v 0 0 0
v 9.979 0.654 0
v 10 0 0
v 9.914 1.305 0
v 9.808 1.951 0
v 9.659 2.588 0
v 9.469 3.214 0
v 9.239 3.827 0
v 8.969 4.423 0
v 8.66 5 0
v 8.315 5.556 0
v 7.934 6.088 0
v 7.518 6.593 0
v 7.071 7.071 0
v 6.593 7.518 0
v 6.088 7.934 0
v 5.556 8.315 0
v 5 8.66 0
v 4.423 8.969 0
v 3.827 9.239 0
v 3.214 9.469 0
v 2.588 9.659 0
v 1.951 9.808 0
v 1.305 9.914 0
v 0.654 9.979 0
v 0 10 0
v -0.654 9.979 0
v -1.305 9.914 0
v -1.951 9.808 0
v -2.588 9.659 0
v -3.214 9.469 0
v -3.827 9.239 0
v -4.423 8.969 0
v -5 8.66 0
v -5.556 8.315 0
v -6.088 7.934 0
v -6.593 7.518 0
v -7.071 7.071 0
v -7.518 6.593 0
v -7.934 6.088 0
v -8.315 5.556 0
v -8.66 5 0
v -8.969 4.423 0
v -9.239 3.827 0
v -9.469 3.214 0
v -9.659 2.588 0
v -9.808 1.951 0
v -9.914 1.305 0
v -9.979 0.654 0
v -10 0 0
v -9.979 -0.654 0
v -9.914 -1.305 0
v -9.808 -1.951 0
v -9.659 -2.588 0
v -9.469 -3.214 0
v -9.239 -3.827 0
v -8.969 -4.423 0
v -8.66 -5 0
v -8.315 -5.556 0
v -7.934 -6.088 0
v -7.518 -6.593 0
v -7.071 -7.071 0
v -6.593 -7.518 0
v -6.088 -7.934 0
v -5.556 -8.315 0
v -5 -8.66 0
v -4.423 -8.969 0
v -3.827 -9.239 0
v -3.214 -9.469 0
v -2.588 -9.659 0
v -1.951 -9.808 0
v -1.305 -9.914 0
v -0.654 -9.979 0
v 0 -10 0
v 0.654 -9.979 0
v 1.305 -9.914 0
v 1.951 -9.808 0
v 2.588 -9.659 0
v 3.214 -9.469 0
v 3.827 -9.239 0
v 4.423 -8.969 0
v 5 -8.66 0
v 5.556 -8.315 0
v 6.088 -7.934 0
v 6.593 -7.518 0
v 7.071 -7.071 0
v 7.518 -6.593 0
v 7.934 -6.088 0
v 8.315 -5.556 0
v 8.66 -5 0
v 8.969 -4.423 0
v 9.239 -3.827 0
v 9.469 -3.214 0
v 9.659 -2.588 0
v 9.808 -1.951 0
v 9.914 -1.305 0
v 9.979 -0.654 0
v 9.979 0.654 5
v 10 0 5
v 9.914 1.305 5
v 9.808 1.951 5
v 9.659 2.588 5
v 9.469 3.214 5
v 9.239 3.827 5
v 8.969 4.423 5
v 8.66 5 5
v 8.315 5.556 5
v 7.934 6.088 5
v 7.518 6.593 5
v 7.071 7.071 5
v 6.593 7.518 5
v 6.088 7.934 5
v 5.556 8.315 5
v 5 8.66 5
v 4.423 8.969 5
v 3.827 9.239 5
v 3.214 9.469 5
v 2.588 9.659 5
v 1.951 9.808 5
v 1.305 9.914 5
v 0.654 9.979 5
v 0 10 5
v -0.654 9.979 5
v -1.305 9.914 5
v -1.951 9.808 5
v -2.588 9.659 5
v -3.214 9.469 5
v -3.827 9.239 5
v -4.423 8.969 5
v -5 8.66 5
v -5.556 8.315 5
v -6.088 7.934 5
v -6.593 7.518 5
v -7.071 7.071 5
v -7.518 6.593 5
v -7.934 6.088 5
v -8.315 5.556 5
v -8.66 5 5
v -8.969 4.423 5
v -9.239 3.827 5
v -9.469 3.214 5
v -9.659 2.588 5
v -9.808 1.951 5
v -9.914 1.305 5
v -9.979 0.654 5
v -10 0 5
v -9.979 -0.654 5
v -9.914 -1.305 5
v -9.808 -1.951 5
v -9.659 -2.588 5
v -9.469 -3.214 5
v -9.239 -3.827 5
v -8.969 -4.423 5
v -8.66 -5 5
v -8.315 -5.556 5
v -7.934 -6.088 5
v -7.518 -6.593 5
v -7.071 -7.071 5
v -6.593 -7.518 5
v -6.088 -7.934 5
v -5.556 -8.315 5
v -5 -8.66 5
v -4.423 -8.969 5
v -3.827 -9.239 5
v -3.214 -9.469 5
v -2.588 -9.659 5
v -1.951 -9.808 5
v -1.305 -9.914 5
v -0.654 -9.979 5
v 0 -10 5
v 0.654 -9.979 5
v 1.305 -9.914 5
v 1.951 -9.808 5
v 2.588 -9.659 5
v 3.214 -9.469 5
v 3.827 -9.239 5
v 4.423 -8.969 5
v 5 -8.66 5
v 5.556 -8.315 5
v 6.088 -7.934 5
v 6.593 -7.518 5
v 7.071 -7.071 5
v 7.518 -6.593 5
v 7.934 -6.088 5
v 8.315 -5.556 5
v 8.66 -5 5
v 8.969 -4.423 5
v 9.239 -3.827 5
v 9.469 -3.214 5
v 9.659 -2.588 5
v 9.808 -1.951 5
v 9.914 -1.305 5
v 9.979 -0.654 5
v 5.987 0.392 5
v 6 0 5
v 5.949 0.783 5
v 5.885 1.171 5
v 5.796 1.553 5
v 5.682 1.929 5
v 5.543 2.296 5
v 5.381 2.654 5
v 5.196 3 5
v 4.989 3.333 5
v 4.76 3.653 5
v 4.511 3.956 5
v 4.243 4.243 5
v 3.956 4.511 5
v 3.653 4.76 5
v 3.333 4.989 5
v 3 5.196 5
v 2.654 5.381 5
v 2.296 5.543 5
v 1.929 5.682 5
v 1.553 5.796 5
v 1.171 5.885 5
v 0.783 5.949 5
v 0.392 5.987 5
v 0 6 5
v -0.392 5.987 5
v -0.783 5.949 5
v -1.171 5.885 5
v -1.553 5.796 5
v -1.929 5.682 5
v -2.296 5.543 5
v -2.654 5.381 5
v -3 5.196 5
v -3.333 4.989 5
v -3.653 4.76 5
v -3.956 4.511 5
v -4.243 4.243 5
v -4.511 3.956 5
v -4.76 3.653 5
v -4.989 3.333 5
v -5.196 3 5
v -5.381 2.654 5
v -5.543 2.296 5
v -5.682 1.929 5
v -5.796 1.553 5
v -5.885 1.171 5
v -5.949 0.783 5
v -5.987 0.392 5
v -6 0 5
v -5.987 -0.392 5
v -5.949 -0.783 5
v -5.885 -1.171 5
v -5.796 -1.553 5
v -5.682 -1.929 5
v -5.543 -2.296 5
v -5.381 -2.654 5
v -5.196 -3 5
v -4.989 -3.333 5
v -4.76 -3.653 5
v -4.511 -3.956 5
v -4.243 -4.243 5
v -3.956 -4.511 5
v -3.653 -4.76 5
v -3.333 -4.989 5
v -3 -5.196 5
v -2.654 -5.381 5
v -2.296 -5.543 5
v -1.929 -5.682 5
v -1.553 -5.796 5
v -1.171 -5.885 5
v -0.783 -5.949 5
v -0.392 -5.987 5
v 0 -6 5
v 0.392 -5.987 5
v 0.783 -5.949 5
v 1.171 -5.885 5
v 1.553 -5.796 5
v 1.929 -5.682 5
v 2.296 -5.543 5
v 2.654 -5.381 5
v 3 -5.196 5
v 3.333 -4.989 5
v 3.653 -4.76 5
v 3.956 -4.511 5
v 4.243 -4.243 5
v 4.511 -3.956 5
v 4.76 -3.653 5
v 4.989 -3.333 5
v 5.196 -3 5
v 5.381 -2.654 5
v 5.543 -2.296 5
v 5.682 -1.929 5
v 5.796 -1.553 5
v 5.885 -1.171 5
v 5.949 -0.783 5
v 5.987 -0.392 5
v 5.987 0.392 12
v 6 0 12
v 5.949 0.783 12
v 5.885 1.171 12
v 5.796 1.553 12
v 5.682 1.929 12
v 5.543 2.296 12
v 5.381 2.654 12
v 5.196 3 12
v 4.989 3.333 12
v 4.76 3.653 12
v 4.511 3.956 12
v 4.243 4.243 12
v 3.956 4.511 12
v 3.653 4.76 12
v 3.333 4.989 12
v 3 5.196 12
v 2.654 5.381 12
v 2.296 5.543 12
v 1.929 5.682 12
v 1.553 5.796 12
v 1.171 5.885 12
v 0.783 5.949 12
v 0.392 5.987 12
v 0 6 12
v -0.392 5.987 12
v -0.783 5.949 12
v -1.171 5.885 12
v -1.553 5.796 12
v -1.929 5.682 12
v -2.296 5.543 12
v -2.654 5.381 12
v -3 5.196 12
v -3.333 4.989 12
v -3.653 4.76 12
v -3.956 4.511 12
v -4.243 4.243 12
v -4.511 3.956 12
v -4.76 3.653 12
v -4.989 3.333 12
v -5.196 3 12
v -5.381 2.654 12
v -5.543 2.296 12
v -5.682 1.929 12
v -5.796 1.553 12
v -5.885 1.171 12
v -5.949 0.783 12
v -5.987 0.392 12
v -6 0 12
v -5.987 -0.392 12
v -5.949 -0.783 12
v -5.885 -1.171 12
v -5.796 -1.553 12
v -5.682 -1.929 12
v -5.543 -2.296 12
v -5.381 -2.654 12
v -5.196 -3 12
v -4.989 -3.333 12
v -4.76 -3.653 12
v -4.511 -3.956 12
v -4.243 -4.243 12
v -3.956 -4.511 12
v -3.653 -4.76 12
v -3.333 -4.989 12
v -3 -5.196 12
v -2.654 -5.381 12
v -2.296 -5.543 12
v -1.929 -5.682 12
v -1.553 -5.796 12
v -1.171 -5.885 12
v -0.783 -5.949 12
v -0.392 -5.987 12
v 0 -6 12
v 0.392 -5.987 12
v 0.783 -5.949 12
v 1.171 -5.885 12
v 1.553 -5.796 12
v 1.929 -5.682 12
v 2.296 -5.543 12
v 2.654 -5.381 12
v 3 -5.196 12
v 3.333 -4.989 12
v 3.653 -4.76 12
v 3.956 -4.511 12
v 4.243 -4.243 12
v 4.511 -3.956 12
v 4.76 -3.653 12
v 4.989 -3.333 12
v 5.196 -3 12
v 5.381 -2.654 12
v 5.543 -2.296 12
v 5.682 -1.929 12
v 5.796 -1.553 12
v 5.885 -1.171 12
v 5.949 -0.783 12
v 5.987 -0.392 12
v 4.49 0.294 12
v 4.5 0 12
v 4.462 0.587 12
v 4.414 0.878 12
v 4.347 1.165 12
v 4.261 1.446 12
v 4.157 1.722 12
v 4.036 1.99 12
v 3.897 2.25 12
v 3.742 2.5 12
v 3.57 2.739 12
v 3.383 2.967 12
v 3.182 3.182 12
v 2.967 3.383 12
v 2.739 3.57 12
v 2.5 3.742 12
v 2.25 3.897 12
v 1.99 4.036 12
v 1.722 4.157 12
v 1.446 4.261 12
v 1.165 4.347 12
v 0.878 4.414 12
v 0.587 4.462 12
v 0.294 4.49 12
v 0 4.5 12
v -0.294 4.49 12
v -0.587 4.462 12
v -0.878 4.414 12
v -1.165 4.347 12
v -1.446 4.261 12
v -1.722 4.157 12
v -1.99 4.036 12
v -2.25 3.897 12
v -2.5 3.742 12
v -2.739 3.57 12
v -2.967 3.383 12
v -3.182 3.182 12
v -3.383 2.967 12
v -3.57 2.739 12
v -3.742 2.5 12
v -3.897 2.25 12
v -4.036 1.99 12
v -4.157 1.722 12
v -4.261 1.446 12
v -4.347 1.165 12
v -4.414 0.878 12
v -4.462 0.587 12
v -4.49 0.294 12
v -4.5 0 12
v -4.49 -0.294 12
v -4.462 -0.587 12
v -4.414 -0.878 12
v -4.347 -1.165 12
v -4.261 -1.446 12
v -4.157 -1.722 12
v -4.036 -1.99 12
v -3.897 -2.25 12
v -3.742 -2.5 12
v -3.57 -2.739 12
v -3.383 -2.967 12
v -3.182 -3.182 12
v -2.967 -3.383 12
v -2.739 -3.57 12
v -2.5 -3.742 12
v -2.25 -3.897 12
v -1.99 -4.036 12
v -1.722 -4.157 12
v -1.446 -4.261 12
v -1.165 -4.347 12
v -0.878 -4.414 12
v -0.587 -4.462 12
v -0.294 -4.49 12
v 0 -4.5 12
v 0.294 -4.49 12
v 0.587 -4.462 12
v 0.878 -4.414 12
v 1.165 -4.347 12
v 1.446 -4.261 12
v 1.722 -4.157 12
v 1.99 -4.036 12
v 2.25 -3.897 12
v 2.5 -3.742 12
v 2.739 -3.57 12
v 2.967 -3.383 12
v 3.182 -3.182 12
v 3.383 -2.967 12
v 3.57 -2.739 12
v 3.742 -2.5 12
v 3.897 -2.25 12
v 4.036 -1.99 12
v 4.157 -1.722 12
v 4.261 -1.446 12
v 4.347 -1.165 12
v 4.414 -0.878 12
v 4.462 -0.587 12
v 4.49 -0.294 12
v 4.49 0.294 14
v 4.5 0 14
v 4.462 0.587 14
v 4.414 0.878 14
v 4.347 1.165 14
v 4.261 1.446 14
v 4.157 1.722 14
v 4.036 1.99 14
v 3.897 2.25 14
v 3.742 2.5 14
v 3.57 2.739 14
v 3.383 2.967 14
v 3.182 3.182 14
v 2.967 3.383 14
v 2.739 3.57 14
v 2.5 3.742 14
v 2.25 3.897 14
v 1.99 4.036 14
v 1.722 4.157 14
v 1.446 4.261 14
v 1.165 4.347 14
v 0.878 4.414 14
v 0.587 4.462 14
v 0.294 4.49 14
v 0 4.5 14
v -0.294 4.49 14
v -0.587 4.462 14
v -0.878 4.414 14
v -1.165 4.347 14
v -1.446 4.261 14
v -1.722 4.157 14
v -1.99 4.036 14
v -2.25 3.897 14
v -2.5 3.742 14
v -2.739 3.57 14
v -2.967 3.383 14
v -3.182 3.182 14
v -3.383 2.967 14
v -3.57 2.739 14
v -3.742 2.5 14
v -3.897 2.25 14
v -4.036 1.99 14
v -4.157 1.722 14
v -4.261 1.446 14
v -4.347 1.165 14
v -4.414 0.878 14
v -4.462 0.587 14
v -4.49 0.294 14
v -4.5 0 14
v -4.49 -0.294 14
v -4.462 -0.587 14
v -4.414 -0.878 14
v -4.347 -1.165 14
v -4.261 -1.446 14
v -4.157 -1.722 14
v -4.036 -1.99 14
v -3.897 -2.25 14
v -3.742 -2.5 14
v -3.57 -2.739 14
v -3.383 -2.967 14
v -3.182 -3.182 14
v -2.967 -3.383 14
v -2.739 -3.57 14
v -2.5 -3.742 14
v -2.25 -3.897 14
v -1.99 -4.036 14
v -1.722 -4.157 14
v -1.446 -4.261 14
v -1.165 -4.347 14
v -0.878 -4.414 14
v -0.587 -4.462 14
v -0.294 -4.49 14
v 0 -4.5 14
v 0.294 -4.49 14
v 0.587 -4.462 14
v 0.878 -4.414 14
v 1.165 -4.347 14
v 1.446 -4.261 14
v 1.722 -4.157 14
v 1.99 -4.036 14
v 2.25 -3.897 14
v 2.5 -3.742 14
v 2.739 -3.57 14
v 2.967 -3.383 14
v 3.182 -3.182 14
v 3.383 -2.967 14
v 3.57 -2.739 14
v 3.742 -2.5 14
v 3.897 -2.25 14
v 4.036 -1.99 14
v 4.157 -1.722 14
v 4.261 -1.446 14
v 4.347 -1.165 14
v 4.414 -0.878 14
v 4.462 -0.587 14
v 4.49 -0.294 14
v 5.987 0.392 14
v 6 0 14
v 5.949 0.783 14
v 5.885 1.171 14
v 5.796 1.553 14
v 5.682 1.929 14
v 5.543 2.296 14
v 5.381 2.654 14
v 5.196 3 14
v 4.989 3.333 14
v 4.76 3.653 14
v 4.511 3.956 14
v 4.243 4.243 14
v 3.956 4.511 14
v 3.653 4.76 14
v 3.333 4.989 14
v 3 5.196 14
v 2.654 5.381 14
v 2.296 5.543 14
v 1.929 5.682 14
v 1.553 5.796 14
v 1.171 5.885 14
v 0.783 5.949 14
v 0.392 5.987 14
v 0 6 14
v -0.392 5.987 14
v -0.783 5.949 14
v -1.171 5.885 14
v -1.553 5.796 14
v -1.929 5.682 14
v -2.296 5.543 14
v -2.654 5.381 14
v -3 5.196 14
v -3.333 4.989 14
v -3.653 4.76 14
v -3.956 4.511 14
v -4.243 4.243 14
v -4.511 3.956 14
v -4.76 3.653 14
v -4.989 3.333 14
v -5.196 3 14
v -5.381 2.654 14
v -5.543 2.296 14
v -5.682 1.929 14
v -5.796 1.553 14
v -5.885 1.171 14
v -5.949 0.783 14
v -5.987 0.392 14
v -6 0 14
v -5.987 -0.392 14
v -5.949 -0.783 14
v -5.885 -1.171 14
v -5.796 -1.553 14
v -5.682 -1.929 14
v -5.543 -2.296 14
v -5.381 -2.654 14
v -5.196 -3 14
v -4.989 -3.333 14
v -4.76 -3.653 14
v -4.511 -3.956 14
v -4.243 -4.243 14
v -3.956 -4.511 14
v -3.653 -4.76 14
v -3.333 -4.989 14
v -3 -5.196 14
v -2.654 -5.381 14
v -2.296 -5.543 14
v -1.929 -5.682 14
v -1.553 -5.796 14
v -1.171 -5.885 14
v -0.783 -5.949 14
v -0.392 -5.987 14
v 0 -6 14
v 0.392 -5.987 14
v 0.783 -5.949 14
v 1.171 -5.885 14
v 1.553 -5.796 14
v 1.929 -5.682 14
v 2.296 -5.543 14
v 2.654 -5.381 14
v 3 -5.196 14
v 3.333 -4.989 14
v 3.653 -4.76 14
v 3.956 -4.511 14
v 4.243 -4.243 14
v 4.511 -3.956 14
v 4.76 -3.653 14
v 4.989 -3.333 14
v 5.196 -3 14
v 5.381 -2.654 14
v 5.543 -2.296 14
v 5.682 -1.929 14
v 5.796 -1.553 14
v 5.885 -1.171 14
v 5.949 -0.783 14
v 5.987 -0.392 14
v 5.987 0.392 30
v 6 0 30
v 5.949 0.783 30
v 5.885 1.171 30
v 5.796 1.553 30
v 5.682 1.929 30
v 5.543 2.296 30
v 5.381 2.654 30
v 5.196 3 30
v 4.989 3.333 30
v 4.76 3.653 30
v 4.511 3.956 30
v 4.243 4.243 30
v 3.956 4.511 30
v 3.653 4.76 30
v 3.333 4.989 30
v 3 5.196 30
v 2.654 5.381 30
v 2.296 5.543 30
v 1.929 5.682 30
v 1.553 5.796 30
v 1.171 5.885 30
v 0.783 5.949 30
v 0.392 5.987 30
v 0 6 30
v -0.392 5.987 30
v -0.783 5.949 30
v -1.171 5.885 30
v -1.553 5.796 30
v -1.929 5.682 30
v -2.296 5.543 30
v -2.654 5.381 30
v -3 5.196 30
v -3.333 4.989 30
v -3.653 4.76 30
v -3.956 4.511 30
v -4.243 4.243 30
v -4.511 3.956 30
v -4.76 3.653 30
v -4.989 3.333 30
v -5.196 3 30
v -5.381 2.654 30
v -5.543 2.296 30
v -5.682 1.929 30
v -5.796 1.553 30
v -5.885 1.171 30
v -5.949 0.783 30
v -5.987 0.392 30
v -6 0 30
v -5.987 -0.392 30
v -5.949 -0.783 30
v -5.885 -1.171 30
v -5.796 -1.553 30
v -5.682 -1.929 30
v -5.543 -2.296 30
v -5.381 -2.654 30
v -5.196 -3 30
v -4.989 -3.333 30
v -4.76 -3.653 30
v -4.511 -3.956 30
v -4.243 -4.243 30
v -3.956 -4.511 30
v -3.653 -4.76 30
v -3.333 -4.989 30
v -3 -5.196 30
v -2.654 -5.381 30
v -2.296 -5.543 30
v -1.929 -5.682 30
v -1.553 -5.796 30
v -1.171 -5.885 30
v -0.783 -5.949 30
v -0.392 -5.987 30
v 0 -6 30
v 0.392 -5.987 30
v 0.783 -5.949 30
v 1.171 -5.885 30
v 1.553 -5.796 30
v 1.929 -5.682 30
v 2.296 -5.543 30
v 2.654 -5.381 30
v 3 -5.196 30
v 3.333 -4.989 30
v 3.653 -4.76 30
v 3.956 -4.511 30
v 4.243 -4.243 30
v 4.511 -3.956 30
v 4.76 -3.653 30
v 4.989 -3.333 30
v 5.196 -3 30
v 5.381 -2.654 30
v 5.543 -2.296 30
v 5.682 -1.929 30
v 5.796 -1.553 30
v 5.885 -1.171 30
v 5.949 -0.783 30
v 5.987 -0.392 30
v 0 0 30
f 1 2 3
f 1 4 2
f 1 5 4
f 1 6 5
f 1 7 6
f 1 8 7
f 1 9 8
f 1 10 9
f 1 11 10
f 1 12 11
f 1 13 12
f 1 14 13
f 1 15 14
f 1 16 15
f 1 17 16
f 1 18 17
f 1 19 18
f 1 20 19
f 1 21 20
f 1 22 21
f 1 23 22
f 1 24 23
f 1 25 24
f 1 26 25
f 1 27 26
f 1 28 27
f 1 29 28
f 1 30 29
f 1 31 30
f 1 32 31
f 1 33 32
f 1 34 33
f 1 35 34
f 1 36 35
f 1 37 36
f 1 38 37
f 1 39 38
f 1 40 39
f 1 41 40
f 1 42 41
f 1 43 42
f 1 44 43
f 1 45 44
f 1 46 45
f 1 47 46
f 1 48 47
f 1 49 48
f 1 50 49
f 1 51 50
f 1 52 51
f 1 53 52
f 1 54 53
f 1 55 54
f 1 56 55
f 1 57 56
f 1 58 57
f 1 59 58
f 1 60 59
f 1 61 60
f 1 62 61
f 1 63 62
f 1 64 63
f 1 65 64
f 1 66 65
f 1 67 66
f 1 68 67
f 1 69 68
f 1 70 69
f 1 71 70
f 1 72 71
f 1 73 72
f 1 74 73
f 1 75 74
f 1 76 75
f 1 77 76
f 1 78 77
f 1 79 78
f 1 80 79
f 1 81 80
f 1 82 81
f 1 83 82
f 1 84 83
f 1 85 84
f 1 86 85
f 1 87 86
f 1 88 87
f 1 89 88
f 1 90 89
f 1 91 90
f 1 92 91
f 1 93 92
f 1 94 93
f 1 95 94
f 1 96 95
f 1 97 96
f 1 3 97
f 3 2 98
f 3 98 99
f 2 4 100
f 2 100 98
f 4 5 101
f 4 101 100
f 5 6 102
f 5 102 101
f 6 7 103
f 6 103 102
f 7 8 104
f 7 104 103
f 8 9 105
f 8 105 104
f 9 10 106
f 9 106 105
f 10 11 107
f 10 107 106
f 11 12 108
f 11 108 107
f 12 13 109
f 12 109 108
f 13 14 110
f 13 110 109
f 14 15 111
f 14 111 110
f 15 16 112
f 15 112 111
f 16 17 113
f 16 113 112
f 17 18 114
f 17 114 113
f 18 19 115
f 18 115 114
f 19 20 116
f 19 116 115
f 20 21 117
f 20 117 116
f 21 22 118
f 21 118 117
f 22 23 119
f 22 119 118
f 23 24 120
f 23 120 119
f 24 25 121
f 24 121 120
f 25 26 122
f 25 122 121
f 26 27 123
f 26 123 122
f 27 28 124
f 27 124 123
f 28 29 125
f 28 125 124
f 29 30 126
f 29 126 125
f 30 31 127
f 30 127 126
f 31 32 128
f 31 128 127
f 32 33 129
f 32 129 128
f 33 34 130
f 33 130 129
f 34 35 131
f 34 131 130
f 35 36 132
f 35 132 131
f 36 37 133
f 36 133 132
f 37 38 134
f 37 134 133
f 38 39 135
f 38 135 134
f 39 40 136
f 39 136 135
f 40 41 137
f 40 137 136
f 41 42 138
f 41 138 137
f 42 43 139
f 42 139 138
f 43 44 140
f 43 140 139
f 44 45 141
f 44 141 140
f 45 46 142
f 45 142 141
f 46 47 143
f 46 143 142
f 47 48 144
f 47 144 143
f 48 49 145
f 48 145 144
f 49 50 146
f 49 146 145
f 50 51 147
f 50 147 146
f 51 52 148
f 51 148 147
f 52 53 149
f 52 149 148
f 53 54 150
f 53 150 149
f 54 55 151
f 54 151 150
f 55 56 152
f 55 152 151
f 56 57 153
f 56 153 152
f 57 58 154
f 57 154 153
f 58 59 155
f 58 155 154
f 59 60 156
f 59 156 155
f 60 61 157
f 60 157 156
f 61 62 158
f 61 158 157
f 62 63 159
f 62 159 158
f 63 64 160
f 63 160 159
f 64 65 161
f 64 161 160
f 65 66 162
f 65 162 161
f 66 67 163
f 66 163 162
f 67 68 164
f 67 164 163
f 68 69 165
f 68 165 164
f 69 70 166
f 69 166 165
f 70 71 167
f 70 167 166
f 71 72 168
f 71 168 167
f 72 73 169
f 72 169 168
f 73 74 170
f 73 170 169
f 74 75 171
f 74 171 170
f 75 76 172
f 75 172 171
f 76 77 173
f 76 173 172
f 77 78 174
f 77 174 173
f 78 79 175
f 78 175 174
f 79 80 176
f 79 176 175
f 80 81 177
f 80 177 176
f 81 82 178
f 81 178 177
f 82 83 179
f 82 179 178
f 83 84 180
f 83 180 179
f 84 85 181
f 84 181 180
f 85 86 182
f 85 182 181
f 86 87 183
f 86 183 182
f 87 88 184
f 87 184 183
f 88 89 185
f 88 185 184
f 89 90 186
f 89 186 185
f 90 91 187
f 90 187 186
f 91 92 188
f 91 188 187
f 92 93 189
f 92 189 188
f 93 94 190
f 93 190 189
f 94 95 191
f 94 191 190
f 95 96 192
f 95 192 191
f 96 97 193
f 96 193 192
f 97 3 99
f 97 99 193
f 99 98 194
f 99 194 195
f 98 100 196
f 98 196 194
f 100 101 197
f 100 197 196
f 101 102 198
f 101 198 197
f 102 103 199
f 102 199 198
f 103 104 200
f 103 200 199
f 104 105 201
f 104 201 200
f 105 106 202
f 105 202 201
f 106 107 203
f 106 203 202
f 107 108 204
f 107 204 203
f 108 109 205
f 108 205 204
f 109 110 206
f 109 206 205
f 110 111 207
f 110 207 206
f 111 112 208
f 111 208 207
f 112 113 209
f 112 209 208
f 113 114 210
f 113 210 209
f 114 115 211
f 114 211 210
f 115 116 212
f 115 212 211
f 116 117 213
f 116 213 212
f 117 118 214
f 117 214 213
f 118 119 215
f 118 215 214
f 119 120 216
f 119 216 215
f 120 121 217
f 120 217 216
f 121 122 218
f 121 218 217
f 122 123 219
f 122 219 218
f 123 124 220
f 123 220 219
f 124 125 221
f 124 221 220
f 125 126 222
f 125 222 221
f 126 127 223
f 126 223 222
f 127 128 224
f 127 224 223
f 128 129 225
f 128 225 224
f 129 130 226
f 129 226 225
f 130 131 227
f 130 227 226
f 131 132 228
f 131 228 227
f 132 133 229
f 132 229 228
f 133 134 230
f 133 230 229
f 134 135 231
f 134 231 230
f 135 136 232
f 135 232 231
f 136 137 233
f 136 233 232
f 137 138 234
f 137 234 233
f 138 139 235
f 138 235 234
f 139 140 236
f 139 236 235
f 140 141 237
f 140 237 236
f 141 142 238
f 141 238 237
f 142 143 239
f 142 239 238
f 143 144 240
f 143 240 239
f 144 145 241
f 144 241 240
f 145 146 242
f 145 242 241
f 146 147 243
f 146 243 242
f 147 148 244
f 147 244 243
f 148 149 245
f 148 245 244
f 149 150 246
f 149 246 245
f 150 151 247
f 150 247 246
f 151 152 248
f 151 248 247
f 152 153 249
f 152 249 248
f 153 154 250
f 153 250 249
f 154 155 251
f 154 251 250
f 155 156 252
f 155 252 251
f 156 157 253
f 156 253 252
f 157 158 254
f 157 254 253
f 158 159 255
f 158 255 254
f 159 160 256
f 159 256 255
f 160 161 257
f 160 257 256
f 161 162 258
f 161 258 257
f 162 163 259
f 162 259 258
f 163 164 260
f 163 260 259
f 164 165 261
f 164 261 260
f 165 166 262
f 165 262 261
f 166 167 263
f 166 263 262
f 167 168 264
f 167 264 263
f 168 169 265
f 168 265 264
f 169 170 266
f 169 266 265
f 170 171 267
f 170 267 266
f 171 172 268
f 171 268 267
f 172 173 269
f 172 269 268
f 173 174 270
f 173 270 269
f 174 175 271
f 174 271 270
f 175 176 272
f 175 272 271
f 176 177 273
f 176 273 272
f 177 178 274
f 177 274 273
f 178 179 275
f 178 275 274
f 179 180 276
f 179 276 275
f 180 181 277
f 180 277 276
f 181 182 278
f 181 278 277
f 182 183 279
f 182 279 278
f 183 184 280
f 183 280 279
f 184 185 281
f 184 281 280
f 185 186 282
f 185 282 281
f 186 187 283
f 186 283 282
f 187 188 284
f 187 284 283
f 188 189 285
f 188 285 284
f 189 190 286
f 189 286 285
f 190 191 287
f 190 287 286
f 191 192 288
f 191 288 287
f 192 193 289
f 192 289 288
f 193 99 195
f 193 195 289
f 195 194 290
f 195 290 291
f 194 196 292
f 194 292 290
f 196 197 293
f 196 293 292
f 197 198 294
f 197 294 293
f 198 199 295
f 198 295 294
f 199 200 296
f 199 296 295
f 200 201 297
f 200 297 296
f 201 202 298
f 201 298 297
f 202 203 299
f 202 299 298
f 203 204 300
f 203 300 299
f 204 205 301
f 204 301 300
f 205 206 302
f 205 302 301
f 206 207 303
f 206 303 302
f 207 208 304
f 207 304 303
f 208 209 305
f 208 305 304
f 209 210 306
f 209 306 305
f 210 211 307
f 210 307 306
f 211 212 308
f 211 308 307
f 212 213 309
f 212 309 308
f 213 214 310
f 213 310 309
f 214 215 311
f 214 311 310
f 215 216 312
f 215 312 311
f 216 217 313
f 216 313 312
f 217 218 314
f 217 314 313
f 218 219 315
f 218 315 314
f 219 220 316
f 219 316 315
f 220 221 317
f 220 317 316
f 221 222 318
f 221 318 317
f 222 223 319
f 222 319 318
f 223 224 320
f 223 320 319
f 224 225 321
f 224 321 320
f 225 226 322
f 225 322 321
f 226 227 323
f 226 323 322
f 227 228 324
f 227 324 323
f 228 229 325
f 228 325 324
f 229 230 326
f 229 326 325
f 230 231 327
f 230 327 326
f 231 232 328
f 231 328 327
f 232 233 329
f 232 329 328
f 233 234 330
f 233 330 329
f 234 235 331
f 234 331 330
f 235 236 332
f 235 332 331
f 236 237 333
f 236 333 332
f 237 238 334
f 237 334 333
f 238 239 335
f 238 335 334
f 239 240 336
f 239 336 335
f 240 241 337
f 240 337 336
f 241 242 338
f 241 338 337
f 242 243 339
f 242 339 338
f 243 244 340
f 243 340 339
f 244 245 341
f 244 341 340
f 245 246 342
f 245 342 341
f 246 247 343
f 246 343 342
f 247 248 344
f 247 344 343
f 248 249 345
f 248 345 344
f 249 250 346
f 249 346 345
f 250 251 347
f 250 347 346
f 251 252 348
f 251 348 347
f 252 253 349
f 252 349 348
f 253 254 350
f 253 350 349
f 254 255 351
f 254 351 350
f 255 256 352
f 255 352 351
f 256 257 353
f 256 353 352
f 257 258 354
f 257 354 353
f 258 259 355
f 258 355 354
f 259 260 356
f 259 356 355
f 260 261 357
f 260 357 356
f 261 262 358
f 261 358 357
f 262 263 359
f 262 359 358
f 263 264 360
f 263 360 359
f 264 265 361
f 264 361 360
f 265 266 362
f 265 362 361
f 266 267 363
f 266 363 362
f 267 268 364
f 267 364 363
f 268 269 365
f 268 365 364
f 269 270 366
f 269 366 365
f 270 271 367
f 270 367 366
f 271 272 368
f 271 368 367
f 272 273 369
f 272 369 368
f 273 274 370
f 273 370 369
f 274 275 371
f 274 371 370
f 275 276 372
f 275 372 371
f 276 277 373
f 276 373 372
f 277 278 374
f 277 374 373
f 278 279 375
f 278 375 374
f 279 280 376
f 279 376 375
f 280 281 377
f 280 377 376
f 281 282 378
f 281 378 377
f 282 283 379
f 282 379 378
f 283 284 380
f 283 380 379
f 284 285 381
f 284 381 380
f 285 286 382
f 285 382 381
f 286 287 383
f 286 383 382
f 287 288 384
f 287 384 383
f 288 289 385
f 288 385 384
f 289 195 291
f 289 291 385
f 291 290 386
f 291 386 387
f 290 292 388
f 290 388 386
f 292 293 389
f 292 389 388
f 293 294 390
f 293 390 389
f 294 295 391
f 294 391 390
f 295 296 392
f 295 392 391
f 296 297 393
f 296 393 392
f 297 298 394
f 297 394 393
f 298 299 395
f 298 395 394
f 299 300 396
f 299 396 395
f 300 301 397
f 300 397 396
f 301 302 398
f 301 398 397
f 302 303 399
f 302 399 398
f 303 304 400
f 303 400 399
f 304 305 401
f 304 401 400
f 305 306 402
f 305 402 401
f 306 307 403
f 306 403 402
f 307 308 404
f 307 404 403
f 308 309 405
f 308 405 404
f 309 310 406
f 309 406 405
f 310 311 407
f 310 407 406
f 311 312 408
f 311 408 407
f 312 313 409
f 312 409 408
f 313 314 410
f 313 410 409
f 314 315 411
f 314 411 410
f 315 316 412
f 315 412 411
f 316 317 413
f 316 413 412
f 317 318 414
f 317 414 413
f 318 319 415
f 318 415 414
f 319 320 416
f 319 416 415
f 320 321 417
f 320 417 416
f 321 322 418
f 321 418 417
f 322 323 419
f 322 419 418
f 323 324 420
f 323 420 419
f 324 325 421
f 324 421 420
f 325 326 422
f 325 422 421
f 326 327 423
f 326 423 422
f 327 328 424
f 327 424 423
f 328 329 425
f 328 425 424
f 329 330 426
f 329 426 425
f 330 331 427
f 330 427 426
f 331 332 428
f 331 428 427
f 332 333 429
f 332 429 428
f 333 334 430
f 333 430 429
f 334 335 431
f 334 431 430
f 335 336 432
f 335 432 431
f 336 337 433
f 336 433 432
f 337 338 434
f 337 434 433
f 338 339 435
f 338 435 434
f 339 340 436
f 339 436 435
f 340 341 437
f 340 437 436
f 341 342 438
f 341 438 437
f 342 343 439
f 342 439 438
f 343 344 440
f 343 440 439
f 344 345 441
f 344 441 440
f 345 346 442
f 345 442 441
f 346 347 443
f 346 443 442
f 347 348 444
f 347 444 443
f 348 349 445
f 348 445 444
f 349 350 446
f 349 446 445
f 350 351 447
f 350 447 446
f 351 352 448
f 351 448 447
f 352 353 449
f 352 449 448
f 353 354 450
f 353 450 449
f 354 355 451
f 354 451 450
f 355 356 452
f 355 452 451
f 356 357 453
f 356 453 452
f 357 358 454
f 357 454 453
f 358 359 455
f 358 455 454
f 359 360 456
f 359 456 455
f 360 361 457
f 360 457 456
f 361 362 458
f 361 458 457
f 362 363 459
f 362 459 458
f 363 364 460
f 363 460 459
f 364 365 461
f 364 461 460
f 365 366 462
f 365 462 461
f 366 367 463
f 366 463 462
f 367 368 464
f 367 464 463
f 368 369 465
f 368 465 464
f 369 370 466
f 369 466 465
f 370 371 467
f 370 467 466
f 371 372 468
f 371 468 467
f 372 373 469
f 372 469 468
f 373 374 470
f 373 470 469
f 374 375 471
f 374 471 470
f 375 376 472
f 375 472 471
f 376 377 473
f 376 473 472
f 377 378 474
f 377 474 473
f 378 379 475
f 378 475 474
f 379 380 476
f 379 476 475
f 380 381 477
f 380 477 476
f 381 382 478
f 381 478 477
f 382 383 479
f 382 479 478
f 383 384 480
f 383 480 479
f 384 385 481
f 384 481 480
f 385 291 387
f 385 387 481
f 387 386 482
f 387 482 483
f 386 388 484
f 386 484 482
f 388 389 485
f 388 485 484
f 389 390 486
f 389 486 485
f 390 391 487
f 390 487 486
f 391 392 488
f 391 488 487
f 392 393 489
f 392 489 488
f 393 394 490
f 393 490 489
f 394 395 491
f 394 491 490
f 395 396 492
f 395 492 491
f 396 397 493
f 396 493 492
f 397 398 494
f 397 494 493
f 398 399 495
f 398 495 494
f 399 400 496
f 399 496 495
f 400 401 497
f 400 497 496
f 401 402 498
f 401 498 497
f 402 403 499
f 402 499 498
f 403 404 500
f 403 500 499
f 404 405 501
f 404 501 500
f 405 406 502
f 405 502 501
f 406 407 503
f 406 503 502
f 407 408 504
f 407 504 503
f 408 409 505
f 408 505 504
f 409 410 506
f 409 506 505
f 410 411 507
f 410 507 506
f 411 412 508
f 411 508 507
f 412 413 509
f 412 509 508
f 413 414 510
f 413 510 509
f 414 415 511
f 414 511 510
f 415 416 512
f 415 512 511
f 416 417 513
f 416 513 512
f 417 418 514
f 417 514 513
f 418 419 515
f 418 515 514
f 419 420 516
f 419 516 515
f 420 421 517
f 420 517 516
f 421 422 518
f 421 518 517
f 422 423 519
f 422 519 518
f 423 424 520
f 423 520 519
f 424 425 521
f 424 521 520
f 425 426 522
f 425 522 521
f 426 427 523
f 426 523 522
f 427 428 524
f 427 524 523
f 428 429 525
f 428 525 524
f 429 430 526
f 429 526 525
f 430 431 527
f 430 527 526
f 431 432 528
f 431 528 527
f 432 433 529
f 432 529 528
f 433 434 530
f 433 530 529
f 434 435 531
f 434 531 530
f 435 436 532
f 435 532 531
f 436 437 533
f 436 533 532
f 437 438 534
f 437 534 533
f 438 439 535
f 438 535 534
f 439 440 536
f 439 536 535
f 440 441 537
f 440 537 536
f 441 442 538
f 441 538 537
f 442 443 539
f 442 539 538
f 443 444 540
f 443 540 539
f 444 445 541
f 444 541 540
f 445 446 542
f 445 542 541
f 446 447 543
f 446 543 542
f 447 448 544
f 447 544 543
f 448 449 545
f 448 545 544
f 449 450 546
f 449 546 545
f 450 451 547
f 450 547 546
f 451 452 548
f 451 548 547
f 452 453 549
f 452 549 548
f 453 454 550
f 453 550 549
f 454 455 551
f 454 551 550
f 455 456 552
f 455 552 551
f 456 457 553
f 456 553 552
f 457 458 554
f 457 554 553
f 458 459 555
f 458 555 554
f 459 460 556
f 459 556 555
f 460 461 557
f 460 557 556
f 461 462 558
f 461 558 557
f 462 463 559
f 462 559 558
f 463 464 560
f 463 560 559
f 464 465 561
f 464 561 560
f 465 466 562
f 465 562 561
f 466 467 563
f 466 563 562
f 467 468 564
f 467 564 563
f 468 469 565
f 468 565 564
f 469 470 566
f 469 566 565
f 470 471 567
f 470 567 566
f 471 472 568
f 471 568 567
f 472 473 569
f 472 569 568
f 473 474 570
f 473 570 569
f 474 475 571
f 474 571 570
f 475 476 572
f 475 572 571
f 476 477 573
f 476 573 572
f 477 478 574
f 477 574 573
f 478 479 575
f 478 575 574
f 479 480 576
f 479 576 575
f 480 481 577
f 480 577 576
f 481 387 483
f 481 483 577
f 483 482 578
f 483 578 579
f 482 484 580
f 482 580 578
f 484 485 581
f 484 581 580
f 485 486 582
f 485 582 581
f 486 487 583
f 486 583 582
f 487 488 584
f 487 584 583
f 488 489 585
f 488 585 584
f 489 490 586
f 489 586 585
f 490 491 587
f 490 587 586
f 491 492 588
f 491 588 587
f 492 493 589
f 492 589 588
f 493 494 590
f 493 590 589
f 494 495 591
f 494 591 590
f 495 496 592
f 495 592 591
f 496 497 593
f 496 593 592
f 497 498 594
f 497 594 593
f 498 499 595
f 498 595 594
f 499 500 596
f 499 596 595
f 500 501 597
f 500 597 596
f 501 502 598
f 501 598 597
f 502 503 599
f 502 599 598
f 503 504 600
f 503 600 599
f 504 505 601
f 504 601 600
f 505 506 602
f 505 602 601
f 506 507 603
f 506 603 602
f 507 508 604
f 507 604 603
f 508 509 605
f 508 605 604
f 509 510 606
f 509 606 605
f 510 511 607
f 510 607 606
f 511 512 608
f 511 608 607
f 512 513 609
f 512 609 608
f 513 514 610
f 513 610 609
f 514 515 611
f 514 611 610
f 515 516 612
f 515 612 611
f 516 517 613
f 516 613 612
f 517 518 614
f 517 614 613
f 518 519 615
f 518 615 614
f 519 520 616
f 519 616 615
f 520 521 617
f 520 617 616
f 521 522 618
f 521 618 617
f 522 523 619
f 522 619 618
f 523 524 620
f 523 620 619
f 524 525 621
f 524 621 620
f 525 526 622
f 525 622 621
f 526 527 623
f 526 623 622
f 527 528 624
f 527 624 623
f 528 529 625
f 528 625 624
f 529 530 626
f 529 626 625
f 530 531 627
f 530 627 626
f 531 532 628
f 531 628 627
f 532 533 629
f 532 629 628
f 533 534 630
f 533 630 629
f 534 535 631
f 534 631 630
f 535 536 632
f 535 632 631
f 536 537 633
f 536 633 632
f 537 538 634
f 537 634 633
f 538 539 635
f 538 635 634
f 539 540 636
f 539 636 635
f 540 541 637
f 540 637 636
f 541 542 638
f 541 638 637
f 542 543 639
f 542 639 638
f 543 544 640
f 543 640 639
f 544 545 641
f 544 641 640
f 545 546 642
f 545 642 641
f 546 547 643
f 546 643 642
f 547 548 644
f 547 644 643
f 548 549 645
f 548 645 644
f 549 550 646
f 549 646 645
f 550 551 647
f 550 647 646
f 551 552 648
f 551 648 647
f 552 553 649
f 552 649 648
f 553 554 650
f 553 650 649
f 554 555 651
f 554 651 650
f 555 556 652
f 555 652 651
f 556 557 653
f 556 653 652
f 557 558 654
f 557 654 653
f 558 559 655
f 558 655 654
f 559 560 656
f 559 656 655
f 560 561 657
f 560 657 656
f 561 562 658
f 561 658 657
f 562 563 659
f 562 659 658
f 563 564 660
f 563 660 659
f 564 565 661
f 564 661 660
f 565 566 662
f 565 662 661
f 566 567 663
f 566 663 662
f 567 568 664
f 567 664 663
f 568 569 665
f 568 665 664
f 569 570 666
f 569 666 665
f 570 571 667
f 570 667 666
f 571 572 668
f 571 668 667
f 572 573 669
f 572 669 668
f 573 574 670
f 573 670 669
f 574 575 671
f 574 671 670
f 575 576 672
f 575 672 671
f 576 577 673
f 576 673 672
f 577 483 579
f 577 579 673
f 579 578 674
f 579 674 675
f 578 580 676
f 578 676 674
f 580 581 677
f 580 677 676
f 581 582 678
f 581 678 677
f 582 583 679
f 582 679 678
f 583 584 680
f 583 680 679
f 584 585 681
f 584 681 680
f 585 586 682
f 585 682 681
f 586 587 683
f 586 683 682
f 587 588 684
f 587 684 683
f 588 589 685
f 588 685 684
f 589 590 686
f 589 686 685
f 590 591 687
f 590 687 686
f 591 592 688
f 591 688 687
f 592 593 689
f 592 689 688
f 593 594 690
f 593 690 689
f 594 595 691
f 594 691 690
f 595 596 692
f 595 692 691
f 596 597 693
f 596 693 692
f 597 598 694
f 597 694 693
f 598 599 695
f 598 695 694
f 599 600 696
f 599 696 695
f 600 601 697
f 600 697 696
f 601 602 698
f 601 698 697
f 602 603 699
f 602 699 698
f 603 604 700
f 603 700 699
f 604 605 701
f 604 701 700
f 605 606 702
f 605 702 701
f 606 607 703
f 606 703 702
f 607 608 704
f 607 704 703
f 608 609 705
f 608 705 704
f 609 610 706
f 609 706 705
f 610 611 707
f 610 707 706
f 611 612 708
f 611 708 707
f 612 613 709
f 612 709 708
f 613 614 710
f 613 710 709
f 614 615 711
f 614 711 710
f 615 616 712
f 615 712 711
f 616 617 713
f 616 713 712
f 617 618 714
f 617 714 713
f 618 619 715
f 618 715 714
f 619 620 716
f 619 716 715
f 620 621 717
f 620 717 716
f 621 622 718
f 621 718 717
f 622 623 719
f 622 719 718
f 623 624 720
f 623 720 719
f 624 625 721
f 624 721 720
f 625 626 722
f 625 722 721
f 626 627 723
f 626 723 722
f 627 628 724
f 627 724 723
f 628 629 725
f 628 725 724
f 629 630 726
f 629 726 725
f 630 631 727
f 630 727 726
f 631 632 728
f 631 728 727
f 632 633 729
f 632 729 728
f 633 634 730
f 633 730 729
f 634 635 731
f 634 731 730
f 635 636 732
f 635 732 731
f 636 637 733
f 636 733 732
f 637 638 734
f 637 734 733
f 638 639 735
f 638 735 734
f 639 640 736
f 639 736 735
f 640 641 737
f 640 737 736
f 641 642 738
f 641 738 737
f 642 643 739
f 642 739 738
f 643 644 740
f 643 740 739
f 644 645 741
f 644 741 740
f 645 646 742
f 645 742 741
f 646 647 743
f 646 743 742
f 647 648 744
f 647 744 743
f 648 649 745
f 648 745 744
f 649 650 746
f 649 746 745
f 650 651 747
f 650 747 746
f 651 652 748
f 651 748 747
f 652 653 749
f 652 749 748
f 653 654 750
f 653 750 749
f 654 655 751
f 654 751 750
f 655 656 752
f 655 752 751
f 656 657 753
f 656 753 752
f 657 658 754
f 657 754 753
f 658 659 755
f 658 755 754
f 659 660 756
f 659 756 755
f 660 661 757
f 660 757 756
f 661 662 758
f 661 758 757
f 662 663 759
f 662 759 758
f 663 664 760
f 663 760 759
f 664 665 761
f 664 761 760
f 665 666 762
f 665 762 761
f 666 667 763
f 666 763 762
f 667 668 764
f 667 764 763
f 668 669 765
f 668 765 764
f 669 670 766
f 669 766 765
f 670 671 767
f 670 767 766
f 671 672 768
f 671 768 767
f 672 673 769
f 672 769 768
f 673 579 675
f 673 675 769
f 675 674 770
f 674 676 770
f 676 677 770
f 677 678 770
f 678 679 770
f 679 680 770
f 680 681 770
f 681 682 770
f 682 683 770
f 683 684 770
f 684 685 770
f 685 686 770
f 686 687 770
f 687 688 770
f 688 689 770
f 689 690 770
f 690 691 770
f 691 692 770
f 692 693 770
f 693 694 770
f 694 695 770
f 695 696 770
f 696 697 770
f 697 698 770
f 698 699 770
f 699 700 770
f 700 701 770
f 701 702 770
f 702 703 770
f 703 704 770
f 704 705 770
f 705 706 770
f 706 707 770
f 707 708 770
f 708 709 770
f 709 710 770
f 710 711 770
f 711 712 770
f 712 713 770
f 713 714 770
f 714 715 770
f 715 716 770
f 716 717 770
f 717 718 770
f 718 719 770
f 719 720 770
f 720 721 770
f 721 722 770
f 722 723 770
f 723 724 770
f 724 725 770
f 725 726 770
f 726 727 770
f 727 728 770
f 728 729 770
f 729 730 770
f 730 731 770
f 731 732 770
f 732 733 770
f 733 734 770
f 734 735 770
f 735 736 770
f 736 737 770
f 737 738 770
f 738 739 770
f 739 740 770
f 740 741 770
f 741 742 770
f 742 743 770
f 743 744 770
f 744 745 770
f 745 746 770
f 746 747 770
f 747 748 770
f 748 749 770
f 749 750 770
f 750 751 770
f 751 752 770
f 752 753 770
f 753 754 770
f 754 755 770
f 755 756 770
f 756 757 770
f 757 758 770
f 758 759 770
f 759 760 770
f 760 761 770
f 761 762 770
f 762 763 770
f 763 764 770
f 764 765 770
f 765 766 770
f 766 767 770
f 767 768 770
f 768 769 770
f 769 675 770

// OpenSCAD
// Original MechIntel educational model. CC0-1.0. Units: mm.
// Not a standardized or load-rated component.
$fn=96;
// Section points: [radius, height], mm. Edit to change the profile.
section=[[0, 0], [10, 0], [10, 5], [6, 5], [6, 12], [4.5, 12], [4.5, 14], [6, 14], [6, 30], [0, 30]];
rotate_extrude($fn=96) polygon(points=section);
